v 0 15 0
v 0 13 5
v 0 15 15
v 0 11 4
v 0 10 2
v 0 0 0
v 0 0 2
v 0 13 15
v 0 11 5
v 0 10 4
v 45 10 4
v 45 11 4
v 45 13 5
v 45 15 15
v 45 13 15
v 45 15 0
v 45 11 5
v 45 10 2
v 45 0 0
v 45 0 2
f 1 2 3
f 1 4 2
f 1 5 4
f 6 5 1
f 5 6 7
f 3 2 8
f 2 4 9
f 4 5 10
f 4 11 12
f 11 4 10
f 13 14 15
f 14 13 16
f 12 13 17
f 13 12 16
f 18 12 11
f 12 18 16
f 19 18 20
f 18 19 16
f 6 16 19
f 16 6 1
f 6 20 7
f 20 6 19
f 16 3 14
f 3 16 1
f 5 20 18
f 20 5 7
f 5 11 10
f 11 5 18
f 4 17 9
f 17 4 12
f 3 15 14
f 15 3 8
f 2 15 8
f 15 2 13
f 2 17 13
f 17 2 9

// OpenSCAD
union() {
    difference() {
        union() {
            cube([45,15,4]);
        };
        translate([0, 0, 2])
            cube([45, 10, 2]);
    };
    translate([45,15,15]) {
        rotate([270,0,180]) {
            difference() {
                union() {
                    cube([45,15,4]);
                };
                translate([0, 0, 2])
                    cube([45, 10, 2]);
            };
        };
    };
};
